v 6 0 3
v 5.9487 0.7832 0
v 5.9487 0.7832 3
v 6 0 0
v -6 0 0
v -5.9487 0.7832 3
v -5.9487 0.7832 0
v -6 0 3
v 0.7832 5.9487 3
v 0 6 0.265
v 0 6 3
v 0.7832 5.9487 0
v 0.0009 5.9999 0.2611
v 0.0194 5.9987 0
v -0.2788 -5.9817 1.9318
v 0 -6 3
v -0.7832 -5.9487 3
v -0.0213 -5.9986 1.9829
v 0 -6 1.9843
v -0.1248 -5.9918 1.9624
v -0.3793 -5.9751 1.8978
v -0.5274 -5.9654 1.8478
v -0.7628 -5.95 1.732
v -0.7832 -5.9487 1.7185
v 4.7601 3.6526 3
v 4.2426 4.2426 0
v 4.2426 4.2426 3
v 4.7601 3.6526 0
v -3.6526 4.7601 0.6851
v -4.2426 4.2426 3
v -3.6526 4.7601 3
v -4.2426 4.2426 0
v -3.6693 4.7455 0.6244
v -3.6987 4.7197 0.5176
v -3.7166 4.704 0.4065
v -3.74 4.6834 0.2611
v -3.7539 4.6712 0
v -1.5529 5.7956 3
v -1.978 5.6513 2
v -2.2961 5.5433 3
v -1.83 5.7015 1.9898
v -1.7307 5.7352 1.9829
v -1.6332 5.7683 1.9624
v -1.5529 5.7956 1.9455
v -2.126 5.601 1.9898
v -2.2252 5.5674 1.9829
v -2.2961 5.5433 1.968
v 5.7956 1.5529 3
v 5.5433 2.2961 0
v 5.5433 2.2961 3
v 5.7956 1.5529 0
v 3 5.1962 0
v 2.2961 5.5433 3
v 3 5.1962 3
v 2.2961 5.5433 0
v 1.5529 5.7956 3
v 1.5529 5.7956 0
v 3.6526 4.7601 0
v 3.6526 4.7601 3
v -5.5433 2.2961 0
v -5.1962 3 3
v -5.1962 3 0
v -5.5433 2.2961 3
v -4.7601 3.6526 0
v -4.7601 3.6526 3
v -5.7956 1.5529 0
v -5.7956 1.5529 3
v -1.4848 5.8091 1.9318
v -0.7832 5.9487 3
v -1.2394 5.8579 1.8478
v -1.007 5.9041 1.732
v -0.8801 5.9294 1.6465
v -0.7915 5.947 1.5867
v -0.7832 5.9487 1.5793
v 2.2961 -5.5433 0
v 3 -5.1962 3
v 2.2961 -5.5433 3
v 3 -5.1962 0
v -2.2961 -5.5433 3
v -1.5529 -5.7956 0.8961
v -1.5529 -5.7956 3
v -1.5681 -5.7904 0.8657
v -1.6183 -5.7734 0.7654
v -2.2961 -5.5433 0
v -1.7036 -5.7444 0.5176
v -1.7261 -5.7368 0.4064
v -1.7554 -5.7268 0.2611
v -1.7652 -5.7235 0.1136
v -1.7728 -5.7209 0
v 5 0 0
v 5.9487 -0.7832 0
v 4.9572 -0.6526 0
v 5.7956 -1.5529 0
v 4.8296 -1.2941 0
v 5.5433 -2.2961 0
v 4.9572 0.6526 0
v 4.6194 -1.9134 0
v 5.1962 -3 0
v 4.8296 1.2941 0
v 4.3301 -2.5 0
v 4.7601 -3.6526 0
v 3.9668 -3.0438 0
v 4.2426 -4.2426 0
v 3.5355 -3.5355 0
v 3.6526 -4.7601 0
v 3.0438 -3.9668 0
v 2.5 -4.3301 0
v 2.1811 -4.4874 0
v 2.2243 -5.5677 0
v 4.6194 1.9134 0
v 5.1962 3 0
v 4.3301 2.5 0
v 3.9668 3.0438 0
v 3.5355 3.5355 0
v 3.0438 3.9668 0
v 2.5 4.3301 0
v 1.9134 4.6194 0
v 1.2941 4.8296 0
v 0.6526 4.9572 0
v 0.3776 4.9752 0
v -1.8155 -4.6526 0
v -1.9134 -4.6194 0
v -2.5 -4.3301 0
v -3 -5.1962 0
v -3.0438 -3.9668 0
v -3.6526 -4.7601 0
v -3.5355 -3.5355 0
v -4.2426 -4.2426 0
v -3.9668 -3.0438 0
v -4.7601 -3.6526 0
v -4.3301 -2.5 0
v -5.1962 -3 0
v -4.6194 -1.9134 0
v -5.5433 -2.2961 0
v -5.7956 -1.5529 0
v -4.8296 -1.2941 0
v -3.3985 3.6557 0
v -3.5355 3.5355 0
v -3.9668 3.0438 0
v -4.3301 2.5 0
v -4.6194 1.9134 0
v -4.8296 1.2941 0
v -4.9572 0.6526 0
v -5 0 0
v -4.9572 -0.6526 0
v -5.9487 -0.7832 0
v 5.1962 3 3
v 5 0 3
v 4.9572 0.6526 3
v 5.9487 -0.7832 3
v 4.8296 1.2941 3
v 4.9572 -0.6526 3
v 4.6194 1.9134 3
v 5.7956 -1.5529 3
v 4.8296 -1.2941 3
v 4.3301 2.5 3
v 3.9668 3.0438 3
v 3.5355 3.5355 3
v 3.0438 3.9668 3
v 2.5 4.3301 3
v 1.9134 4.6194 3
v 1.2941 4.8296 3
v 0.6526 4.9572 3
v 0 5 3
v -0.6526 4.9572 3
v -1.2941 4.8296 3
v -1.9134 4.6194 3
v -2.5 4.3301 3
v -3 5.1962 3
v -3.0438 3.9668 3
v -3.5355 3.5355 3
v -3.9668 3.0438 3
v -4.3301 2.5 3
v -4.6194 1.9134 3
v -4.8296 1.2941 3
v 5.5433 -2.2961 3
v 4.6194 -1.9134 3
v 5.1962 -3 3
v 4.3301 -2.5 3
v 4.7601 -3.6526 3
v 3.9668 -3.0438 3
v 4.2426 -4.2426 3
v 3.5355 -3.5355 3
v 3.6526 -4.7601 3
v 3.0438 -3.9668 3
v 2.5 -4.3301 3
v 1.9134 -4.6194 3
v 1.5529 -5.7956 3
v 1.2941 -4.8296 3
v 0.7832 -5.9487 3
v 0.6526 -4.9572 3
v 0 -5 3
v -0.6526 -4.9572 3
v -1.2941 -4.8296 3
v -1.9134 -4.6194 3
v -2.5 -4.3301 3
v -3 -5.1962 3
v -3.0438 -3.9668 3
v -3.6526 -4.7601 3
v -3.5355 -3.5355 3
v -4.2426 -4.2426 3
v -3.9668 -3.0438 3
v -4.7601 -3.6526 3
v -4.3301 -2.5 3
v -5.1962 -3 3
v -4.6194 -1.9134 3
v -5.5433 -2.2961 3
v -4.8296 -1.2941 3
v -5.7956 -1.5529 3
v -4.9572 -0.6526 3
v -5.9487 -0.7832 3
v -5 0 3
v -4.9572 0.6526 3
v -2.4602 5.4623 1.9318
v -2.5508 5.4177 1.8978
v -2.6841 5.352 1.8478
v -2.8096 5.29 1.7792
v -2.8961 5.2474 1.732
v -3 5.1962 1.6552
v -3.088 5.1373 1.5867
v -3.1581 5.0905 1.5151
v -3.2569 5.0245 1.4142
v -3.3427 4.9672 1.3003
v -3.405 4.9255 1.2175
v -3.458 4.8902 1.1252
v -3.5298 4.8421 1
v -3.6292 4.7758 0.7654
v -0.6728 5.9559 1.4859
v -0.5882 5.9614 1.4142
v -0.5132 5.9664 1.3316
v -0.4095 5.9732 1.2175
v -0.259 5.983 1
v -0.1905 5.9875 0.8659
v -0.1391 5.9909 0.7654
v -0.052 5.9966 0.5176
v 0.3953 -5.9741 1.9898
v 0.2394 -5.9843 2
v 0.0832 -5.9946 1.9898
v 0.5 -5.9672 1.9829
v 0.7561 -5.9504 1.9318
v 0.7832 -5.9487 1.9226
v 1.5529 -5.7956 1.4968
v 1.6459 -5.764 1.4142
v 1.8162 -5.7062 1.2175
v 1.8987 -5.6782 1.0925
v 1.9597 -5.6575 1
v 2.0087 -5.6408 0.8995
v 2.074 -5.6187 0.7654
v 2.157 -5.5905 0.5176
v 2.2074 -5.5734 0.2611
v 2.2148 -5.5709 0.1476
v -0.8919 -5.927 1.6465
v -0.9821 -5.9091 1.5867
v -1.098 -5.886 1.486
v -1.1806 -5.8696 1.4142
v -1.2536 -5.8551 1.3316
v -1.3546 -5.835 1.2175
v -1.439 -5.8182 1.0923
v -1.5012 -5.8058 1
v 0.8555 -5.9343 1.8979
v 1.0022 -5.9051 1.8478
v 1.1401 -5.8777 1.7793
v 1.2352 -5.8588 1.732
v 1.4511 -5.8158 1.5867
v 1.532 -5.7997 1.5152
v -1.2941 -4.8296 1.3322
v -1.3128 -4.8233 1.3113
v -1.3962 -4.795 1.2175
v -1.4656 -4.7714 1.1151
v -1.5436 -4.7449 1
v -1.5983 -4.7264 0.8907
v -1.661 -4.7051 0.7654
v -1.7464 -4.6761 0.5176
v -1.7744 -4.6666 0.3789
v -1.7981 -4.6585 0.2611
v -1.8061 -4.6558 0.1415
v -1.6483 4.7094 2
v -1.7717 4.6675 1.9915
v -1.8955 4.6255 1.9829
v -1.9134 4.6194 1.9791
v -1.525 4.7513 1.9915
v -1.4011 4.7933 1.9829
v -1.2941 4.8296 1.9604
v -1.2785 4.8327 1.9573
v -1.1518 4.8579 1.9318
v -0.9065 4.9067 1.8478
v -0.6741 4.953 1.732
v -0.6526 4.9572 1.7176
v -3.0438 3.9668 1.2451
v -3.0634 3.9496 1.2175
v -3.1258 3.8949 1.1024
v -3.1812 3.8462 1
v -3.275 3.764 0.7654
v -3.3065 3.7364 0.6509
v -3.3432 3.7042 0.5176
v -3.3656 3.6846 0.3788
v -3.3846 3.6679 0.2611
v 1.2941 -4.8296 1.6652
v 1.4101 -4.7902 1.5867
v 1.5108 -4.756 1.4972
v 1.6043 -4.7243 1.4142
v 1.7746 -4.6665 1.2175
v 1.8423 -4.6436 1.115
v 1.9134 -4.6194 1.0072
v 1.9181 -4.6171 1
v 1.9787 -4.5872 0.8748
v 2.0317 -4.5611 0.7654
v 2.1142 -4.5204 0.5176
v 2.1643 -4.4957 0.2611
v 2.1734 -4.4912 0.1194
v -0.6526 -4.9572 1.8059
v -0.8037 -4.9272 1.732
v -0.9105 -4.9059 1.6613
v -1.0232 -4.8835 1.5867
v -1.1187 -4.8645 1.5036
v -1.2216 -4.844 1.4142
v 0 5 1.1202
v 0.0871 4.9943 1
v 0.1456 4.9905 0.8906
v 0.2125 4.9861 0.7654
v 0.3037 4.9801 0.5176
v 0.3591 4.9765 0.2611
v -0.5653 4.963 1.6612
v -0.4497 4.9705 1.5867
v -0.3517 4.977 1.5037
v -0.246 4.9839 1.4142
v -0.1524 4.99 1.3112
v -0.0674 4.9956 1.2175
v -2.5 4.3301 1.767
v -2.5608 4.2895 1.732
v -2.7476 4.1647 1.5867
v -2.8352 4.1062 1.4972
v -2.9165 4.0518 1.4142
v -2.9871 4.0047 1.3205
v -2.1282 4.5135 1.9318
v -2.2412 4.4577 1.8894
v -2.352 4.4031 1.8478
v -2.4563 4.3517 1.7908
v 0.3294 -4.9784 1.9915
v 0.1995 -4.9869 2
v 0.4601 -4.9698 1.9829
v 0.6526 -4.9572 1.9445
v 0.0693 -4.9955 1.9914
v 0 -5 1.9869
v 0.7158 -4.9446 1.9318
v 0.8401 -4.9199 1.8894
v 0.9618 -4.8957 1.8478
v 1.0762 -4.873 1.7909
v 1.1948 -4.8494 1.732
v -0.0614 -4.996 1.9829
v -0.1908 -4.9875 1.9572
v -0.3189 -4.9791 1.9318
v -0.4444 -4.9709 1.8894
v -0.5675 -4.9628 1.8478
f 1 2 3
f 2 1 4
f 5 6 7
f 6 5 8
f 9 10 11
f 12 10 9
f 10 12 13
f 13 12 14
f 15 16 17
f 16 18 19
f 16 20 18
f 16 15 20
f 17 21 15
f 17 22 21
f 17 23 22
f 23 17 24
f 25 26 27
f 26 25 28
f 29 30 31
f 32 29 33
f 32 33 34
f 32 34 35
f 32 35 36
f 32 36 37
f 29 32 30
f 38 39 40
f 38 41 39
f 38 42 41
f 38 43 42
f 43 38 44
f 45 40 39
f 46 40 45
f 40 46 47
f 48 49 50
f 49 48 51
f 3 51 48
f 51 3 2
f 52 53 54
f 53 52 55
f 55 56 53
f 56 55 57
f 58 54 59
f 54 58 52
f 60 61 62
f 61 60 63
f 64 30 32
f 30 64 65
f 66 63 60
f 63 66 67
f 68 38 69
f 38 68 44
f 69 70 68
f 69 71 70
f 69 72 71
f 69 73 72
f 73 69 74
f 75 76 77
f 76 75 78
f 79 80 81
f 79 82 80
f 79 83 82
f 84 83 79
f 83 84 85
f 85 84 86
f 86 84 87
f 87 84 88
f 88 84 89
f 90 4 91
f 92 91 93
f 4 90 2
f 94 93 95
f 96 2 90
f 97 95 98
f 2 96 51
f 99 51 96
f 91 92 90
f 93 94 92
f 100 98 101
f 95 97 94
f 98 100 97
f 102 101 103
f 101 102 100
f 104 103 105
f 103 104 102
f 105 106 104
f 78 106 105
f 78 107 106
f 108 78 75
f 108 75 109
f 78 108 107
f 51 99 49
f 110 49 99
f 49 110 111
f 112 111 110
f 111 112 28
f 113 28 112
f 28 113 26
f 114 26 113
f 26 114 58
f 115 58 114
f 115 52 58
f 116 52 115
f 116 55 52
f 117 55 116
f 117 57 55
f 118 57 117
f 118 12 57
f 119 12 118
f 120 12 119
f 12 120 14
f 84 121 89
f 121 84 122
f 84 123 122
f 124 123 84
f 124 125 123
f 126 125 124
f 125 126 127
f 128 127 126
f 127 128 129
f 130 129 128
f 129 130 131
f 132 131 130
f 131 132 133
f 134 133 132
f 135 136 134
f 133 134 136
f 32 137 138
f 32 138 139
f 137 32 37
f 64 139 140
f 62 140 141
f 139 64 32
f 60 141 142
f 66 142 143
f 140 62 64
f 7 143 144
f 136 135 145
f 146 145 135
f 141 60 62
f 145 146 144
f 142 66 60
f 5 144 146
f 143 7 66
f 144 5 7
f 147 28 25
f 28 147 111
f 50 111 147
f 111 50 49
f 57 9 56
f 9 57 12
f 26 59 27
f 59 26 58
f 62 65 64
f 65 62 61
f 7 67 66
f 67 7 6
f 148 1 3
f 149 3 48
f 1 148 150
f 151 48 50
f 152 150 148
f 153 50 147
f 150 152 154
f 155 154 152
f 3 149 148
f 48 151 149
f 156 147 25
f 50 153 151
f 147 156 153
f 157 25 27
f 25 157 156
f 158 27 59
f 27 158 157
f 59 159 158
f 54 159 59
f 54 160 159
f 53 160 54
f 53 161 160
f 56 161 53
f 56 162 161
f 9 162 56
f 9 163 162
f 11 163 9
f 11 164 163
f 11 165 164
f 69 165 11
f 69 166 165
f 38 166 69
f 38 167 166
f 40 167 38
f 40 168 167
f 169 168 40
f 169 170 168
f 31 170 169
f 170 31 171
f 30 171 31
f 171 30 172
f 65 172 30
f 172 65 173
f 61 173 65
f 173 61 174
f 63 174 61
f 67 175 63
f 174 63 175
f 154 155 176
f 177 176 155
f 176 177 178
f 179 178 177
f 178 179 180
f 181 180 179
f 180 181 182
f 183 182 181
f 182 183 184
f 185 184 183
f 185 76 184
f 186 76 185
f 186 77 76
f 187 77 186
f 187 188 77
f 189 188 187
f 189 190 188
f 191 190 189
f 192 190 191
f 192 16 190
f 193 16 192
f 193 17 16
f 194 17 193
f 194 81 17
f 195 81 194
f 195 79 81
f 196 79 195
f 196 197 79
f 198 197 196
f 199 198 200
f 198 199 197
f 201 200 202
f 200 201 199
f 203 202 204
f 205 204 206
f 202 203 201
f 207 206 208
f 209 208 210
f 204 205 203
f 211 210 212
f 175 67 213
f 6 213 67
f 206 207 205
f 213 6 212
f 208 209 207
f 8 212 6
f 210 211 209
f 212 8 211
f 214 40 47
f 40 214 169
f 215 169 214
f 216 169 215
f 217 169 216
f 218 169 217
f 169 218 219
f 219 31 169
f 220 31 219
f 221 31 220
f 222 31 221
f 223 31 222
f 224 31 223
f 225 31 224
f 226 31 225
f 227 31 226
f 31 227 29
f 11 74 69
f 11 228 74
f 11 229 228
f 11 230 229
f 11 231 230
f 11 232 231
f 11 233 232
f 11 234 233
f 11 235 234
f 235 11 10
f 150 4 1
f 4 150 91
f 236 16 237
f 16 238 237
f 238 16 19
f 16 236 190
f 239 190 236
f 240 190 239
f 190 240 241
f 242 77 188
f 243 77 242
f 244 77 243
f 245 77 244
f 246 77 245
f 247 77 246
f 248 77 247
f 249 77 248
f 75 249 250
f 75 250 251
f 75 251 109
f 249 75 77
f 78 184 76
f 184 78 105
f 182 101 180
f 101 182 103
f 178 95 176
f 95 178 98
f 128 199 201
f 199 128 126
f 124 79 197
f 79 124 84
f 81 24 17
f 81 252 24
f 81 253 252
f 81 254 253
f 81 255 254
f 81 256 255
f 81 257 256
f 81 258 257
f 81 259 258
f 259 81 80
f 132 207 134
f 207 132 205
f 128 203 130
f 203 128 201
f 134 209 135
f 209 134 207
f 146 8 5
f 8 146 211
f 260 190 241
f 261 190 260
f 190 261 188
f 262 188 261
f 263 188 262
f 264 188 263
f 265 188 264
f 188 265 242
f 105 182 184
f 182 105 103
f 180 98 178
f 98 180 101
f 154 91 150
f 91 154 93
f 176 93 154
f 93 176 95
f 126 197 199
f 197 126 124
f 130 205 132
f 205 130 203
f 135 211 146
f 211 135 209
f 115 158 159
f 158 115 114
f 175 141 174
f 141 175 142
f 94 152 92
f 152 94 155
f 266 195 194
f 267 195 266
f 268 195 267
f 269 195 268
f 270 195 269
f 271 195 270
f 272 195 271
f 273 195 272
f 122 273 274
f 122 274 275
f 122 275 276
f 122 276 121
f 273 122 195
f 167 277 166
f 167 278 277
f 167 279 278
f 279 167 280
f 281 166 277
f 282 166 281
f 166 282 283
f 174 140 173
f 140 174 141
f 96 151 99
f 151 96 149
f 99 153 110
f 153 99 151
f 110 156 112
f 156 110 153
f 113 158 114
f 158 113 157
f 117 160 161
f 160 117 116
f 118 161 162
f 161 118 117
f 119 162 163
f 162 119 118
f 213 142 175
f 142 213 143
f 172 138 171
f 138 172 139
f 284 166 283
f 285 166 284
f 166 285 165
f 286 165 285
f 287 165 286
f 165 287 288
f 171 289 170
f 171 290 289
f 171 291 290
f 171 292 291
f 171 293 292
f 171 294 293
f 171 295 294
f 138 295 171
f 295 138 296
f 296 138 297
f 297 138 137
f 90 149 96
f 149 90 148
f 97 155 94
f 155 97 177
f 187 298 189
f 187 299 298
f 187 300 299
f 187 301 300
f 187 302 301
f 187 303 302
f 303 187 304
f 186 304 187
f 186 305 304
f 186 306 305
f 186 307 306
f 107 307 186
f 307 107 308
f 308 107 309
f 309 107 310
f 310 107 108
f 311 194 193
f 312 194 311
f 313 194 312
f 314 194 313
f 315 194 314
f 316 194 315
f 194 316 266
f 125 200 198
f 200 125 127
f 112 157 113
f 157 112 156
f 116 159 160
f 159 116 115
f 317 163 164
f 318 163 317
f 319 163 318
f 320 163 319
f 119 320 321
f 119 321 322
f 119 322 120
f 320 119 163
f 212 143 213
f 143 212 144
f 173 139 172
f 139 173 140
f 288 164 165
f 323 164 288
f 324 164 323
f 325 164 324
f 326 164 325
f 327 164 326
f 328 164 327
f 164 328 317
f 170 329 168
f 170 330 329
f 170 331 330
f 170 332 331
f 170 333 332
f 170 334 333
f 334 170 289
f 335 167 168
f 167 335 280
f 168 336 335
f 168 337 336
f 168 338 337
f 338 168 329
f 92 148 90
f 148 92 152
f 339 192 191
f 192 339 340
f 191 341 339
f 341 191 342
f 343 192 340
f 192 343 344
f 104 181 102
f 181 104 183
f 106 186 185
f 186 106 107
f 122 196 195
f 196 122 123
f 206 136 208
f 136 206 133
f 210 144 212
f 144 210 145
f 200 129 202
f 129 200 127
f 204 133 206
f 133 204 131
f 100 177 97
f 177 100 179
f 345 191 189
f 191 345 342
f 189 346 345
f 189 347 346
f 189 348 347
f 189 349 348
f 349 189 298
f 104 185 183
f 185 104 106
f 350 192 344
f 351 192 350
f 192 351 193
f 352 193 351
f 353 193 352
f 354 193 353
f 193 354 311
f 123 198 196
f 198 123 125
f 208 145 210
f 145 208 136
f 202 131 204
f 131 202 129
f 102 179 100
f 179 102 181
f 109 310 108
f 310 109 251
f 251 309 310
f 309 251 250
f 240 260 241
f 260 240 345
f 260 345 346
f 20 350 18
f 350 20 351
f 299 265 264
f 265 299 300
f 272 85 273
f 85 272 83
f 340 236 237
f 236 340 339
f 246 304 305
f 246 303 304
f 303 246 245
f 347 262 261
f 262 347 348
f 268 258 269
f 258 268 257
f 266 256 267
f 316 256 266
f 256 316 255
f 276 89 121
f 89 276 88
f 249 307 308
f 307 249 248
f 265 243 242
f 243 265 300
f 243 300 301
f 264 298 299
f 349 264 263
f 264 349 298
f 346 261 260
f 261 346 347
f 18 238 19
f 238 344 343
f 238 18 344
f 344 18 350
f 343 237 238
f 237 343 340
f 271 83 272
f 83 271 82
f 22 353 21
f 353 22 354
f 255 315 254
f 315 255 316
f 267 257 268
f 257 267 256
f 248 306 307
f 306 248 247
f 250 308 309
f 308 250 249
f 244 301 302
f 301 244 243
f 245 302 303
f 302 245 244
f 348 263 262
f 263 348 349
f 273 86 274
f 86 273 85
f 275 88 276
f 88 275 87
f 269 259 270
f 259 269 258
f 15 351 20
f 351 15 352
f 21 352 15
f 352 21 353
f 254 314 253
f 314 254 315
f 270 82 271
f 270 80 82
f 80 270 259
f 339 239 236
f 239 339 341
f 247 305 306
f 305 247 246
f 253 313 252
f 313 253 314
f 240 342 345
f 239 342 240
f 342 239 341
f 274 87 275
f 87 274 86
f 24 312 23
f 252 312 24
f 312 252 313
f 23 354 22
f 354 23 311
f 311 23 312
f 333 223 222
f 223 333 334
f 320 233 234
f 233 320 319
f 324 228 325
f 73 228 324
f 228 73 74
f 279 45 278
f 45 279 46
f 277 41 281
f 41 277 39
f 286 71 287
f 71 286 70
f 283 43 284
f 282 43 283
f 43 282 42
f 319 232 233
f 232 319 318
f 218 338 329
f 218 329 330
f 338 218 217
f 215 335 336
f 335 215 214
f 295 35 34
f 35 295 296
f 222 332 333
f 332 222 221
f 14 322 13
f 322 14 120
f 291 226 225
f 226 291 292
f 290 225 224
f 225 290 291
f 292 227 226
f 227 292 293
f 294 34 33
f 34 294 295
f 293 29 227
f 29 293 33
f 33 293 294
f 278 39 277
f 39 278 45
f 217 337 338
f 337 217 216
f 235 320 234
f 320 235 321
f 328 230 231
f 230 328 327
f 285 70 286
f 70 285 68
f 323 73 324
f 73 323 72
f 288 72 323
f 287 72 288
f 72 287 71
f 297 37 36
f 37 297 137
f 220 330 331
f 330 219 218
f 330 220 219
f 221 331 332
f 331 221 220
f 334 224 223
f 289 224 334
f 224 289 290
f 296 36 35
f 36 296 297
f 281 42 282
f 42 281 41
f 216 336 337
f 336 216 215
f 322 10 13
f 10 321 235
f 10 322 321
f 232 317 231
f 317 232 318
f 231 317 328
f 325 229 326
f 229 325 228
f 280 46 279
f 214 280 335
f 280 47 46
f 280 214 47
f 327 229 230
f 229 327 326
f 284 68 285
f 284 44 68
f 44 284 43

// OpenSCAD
// file: ../build_environments.scad
// build_environments.scad: modules to build level sections
//

module pool(diameter=10.0, wall_height=2.0, step_width=3.0, connections=[])
{
    difference() {
        union() {
        difference() {
            cylinder(h=0.5,r1=diameter+step_width,r2=diameter+step_width,$fn=48);
            translate([0,0,-0.1])
                cylinder(h=0.7,r1=diameter,r2=diameter,$fn=48);
        }
        difference() {
            cylinder(h=wall_height,r1=diameter+step_width+1.0,r2=diameter+step_width+1.0,$fn=48);
            translate([0,0,-0.1])
                cylinder(h=wall_height+0.2,r1=diameter+step_width,r2=diameter+step_width,$fn=48);
        }
        }
    
        for (c = connections)
        {
            rotate([0,90,0]) {
                angle = atan2(c[1],c[0]);
                rotate([-angle,0,0]) {
                    cylinder(h=diameter+5.0,r1=c[2],r2=c[2],$fn=48);
                }
            }
        }
    }
}

module straight(length=10.0, width=2.0, dy1=0.0, dy2=0.0, dz=0.0)
{
    dims = [0, 0, 0, 0, 0, (dz/length)];
    matrix = [
        [ 1, dims[0], dims[1], 0 ],
        [ dims[2], 1, dims[4], 0 ],
        [ dims[5], dims[3], 1, 0 ],
        [ 0, 0, 0, 1 ]
    ];
    multmatrix(matrix)
    difference() {
        translate([dy1,0,0])
        union() {
            rotate([0,90,0]) {
                difference() {
                    cylinder(h=(length-dy1-dy2),r1=width+1.0,r2=width+1.0,$fn=24);
                    translate([0,0,-0.1])
                        cylinder(h=(length-dy1-dy2+0.2),r1=width,r2=width,$fn=24);
                }
                difference() {
                    cylinder(h=1.0,r1=width+2.0,r2=width+2.0,$fn=24);
                    translate([0,0,-0.1])
                        cylinder(h=1.2,r1=width,r2=width,$fn=24);
                }
                translate([0,0,(length-dy1-dy2)-1.0]) {
                    difference() {
                        cylinder(h=1.0,r1=width+2.0,r2=width+2.0,$fn=24);
                        translate([0,0,-0.1])
                            cylinder(h=1.2,r1=width,r2=width,$fn=24);
                    }
                }
            }
        }
        translate([0,0,-(2*width+4.0)/2])
            cube([3*length,3*length,2*width+4.0],center=true);
    }
}

module curve(p0=[0,0], center=[0,0], dir=1, angle=0.0, width=2.0)
{
    radius = sqrt((p0[0]-center[0])*(p0[0]-center[0]) + (p0[1]-center[1])*(p0[1]-center[1]));
    if (dir == 0) {
        difference() {
            rotate([0,0,-90])
            difference() {
                rotate_extrude(angle = angle, convexity = 10, $fn=32)
                    translate([radius, 0, 0])
                        circle(r = width+1.0,$fn=24);
                rotate([0,0,-1.0])
                    rotate_extrude(angle = angle+2.0, convexity = 10, $fn=32)
                        translate([radius, 0, 0])
                            circle(r = width,$fn=24);
            }
            translate([0,0,-(2*width+4.0)/2])
                cube([5*radius,5*radius,2*width+4.0],center=true);
        }
    }
    else {
        difference() {
            rotate([0,0,90])
            difference() {
                rotate_extrude(angle = -angle, convexity = 10, $fn=32)
                    translate([radius, 0, 0])
                        circle(r = width+1.0,$fn=24);
                rotate([0,0,1.0])
                    rotate_extrude(angle = -angle-2.0, convexity = 10, $fn=32)
                        translate([radius, 0, 0])
                            circle(r = width,$fn=24);
            }
            translate([0,0,-(2*width+4.0)/2])
                cube([5*radius,5*radius,2*width+4.0],center=true);
        }
    }

}

// test pool
//pool(diameter=12.0000, wall_height=3.0000, step_width=3.0000, connections=[[0.0000,-26.0000,2.0000], [23.6074,0.0000,2.0000]]);

// test straight, slope
//straight(length=26.0000, width=2.0000, dy1=11.8322, dy2=6.7082, dz=0.0000);
//straight(length=29.1549, width=12.0000, dy1=0.0000, dy2=0.0000, dz=-15.0000);

// test curve
//curve(p0=[23.6074, 0.0000], center=[23.6074, 5.0000], dir=0, angle=60.1011, width=2.0000);
//curve(p0=[33.6426, 12.4219], center=[37.9771, 9.9295], dir=1, angle=120.4627, width=2.0000);
// main file
use <../build_environments.scad>;
pool(diameter=5.0000, wall_height=3.0000, step_width=0.0000, connections=[[0.3302,-8.2550,2.0000], [-7.0000,20.0000,2.0000]]);
